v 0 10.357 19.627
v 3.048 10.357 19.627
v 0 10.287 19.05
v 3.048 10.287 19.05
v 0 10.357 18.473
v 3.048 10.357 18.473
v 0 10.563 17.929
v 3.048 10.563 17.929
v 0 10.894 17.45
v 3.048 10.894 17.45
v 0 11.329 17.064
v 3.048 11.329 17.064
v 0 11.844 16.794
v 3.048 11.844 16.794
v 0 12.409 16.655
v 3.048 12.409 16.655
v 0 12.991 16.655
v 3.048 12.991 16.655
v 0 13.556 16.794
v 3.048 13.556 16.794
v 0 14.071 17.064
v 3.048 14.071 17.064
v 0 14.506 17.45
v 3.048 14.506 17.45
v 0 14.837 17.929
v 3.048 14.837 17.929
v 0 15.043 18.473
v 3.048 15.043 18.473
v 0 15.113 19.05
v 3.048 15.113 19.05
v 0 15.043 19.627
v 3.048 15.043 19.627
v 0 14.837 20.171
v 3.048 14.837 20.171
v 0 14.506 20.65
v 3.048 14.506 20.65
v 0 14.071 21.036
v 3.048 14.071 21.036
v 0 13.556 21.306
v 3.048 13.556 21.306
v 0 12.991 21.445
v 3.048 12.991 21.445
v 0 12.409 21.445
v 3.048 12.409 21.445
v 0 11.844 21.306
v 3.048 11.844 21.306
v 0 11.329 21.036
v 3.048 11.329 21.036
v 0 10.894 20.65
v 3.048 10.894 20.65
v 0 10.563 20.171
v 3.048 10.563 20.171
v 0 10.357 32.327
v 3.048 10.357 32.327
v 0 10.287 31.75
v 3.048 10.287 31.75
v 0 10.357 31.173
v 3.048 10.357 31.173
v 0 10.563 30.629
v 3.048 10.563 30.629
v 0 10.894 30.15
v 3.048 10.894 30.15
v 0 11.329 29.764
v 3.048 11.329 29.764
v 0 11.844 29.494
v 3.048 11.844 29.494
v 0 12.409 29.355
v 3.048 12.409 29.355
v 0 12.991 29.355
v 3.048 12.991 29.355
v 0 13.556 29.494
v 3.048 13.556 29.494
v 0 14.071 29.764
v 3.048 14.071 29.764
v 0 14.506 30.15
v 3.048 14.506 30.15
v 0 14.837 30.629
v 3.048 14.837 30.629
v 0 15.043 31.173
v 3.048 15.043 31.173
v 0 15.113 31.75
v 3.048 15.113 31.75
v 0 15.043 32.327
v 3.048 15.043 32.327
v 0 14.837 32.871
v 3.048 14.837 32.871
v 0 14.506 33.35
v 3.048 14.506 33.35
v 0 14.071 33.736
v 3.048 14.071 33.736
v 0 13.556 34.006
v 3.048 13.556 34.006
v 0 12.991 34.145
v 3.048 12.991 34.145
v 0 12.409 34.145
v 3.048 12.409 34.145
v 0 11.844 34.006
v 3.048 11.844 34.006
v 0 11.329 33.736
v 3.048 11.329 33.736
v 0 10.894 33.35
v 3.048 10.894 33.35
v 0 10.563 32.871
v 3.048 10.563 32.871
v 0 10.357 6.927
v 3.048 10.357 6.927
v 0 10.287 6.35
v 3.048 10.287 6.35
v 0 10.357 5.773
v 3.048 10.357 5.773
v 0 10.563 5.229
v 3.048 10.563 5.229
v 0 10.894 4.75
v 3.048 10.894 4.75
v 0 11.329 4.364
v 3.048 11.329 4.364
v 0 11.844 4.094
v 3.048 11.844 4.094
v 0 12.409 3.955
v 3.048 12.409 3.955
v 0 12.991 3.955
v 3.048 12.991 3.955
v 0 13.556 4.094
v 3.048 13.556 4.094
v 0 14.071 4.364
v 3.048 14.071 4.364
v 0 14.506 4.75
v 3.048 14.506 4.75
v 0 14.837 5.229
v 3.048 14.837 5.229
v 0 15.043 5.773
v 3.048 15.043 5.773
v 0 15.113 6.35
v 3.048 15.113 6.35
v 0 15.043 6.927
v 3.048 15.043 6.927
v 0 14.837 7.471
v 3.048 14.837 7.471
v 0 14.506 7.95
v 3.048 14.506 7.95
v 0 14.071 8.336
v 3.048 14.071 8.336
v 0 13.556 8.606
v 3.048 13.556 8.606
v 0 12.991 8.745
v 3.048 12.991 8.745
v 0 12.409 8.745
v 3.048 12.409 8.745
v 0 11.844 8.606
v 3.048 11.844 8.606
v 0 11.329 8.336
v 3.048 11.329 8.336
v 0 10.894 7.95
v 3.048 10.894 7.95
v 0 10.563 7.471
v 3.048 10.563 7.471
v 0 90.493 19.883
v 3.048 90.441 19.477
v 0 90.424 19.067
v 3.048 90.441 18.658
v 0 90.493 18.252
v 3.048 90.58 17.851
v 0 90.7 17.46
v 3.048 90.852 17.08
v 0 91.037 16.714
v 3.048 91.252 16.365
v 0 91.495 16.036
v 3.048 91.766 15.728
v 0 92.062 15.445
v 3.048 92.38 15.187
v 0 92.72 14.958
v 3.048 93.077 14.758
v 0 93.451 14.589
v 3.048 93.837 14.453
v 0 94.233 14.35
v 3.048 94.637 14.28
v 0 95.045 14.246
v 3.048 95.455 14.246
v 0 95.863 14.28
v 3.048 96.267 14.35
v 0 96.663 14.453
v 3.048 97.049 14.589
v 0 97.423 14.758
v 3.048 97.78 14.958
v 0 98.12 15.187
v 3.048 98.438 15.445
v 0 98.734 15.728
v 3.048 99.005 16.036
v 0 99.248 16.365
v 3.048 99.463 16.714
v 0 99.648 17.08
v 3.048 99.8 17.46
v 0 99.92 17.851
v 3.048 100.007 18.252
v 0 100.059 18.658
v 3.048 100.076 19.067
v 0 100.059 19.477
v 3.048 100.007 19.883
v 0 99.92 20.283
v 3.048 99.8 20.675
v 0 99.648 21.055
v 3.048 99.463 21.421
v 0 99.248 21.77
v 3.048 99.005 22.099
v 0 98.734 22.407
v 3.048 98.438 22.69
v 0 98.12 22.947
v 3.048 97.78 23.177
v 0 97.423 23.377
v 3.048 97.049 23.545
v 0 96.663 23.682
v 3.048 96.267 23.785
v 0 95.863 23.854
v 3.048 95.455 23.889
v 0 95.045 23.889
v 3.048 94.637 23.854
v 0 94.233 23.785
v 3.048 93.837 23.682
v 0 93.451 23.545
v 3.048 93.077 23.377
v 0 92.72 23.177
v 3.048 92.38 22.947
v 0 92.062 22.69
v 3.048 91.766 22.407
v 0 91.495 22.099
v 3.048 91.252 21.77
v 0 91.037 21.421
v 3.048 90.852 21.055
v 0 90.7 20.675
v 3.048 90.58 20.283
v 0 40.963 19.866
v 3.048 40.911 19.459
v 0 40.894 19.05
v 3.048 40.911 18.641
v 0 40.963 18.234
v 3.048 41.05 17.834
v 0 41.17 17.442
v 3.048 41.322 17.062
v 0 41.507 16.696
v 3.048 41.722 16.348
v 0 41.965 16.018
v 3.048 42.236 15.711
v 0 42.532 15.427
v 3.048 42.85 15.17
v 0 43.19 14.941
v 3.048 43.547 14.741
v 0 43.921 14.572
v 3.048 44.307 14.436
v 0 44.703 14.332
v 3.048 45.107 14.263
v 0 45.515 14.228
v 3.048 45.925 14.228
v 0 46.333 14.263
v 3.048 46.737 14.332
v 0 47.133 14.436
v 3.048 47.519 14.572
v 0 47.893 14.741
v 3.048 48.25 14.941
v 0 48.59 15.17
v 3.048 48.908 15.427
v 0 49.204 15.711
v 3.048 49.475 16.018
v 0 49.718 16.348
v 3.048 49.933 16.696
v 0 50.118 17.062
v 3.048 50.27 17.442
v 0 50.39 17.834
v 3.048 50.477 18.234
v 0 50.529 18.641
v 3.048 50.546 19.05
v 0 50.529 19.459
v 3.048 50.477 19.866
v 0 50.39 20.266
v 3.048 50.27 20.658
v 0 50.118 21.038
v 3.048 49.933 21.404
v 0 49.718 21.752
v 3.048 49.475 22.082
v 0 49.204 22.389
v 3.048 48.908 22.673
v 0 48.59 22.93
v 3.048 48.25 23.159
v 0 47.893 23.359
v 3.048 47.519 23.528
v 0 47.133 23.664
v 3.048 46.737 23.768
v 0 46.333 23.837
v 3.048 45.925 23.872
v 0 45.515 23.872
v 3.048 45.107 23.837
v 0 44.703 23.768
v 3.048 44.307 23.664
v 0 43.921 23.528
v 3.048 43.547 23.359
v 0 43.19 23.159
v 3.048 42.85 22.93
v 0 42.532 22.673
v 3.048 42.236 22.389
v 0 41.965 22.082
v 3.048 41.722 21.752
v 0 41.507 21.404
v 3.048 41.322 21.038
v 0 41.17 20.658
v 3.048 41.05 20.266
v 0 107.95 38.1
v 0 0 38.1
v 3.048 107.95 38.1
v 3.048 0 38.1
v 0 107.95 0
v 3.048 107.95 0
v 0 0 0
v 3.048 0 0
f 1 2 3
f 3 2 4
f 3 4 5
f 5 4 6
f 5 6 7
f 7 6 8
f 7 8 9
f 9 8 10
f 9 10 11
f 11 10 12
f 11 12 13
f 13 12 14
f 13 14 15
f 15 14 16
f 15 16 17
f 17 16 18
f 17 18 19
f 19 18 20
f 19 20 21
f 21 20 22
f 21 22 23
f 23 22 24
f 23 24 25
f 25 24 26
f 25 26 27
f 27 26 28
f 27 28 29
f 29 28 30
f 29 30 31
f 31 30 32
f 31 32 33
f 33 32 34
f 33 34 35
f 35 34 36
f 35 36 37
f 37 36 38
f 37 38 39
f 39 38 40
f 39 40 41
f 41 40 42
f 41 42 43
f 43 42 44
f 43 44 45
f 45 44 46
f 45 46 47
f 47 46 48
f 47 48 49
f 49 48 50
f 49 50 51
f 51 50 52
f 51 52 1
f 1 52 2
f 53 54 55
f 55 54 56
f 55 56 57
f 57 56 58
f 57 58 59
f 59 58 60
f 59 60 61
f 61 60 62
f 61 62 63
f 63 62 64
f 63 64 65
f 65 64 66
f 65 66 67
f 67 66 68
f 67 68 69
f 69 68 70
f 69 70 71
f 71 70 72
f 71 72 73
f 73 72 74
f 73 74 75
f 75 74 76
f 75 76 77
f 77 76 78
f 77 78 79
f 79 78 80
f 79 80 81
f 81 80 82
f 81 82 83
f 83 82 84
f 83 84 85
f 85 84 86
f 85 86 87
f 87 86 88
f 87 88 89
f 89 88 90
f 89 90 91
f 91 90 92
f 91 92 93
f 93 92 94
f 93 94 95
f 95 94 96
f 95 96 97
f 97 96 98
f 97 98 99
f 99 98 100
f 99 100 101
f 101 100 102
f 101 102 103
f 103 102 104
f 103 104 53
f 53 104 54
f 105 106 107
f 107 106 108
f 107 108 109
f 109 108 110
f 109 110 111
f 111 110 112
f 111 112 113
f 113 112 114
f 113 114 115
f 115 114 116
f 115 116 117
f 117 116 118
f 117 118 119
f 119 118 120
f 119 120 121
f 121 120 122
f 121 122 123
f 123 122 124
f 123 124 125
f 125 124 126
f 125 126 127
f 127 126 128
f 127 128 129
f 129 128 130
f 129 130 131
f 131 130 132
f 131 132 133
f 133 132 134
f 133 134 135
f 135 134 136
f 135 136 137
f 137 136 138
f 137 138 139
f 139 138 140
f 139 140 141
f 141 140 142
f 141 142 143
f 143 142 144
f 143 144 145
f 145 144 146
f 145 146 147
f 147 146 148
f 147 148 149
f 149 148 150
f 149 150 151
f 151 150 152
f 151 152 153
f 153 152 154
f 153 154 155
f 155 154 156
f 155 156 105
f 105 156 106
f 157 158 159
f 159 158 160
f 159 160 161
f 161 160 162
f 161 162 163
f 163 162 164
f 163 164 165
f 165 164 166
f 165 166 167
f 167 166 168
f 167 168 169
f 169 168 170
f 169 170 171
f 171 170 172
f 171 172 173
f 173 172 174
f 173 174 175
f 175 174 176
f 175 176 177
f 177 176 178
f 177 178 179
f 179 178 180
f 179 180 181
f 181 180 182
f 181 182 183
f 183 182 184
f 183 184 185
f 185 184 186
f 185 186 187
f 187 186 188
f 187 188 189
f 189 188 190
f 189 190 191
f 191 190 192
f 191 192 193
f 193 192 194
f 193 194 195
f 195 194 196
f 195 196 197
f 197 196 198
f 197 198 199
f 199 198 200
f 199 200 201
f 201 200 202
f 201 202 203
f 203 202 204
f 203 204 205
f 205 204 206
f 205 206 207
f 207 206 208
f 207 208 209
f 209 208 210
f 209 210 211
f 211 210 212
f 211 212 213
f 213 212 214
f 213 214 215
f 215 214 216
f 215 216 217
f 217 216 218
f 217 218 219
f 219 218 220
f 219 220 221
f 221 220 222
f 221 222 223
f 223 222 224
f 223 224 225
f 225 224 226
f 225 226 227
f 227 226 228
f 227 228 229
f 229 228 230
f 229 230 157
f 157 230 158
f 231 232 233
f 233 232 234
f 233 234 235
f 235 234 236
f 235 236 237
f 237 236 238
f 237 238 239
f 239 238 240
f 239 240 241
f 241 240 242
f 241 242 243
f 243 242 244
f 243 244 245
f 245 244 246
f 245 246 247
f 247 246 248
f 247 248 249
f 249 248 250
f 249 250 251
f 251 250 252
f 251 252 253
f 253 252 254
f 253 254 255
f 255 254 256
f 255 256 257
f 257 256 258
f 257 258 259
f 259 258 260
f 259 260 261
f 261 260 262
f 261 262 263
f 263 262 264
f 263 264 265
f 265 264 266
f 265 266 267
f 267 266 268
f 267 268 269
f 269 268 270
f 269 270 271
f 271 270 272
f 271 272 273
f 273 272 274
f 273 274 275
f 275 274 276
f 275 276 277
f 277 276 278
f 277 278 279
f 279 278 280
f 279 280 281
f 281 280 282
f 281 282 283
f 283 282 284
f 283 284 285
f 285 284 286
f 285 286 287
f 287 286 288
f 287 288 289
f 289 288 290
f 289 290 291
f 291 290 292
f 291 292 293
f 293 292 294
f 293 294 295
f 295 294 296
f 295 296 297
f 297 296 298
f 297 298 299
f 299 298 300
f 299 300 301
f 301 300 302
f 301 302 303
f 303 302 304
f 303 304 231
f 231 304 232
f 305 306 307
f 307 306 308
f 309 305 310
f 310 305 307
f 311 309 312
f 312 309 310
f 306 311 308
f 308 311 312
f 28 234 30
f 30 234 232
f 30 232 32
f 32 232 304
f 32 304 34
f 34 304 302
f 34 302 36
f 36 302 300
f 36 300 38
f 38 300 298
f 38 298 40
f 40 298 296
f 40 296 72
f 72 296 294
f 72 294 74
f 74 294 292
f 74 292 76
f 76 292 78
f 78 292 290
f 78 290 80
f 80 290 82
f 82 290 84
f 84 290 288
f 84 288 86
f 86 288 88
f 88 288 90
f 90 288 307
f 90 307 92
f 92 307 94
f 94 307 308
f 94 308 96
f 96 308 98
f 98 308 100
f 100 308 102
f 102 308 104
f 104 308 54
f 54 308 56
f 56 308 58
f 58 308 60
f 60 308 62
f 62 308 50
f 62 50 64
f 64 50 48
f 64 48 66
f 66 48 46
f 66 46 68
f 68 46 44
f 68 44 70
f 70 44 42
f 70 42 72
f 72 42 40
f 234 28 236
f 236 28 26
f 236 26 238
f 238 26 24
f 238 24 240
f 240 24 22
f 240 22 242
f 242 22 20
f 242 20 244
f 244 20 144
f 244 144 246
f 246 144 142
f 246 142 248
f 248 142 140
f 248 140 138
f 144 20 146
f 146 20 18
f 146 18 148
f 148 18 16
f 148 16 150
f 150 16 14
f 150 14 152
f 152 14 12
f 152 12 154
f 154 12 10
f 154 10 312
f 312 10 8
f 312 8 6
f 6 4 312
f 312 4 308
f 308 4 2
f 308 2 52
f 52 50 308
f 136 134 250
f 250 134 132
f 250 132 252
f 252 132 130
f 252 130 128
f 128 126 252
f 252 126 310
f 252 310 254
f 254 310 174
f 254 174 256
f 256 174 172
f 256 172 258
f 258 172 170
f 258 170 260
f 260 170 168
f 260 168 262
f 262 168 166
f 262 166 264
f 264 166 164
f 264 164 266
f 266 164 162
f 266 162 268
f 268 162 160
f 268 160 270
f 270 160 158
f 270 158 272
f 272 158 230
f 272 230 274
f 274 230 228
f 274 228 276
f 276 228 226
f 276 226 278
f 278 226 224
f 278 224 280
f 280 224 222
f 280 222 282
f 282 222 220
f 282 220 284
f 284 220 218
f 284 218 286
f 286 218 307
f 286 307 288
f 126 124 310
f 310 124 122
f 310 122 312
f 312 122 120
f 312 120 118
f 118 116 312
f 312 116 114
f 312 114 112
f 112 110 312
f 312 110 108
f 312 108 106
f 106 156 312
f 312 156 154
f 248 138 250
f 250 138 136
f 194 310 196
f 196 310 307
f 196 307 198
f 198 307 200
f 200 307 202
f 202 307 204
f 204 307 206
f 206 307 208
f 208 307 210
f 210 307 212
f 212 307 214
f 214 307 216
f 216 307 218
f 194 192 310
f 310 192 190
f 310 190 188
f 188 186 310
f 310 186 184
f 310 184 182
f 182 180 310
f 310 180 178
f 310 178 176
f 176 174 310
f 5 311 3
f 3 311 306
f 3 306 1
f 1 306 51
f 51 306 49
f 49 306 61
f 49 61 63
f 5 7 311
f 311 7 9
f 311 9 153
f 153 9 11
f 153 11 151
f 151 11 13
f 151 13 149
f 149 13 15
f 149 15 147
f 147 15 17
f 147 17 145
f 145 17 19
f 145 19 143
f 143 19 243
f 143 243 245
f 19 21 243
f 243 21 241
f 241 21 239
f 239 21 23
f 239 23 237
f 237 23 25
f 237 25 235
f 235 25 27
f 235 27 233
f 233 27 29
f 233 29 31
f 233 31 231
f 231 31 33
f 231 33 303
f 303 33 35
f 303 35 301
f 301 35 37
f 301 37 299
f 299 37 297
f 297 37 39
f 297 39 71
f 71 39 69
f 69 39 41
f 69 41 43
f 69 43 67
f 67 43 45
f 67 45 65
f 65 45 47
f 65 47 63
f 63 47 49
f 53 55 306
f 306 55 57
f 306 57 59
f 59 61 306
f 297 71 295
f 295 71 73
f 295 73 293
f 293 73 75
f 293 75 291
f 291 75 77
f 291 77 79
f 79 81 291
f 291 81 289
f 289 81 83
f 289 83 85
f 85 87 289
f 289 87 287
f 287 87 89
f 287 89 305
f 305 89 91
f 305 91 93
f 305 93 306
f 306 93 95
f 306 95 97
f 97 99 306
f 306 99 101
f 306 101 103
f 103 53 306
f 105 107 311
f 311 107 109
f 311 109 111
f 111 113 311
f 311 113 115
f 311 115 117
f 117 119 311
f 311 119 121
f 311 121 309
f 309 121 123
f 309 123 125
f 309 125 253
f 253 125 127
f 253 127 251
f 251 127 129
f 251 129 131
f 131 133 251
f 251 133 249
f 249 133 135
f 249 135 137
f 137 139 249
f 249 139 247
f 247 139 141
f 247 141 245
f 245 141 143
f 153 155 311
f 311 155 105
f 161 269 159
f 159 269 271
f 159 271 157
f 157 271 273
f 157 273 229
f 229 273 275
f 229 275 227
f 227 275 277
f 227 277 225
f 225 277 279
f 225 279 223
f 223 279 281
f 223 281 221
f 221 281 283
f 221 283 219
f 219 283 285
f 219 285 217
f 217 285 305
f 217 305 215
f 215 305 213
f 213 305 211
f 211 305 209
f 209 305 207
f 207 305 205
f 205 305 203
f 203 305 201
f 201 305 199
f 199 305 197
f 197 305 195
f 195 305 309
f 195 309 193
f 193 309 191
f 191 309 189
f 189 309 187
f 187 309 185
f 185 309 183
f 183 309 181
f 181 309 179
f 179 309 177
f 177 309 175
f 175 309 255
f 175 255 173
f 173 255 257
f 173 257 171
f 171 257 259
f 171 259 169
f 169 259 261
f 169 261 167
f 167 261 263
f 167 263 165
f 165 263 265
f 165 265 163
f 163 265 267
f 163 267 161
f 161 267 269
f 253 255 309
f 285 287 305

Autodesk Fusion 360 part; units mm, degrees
sketch "Sketch1" plane through (0, 0, 0) normal (1, 0, 0) x (0, 1, 0)
  line L0 (0, 0) -> (107.95, 0)
  line L1 (107.95, 0) -> (107.95, 38.1)
  line L2 (107.95, 38.1) -> (0, 38.1)
  line L3 (0, 38.1) -> (0, 0)
  dimension "d1" = 38.1
  dimension "d2" = 107.95
extrude "Extrude1" add sketch "Sketch1" along normal blind 3.048
sketch "Sketch2" plane through (3.048, 0, 0) normal (1, 0, 0) x (0, 1, 0)
  line L0 (0, 38.1) -> (0, 0)
  line L1 (0, 0) -> (107.95, 0)
  line L2 (107.95, 0) -> (107.95, 38.1)
  line L3 (107.95, 38.1) -> (0, 38.1)
  line L4 (-12.7, 0) -> (-12.7, 19.05)
  line L5 (0, -12.7) -> (25.4, -12.7)
  line L6 (25.4, -25.4) -> (31.75, -25.4)
  line L7 (33.02, -38.1) -> (45.72, -38.1)
  line L8 (45.72, -50.8) -> (58.42, -50.8)
  line L9 (58.42, -50.8) -> (58.42, -38.1)
  line L10 (58.42, -38.1) -> (71.12, -38.1)
  line L11 (71.12, -38.1) -> (71.12, -50.8)
  line L12 (71.12, -50.8) -> (83.82, -50.8)
  line L13 (83.82, -50.8) -> (83.82, -38.1)
  line L14 (83.82, -38.1) -> (96.52, -38.1)
  line L15 (96.52, -38.1) -> (96.52, -50.8)
  line L16 (96.52, -50.8) -> (109.22, -50.8)
  line L17 (109.22, -50.8) -> (109.22, -38.1)
  line L18 (-12.7, 19.05) -> (121.92, 19.05)
  circle A0 centre (45.72, 19.05) radius 4.826
  dimension "d5" = 19.05
  dimension "d6" = 6.35
  dimension "d7" = 9.652
hole "Hole1" at (3.048, 45.72, 19.05) direction (-1, 0, 0) diameter 9.652 depth 40.64 tip angle 118
sketch "Sketch3" plane through (3.048, 0, 0) normal (1, 0, 0) x (0, 1, 0)
  circle A0 centre (45.72, 19.05) radius 4.826
  line L0 (0, 38.1) -> (0, 0)
  line L1 (0, 0) -> (107.95, 0)
  line L2 (107.95, 0) -> (107.95, 38.1)
  line L3 (107.95, 38.1) -> (0, 38.1)
  line L4 (111.76, 0) -> (111.76, 19.05)
  circle A1 centre (95.25, 19.0673) radius 4.826
  dimension "d16" = 9.652
hole "Hole2" at (3.048, 95.25, 19.0673) direction (-1, 0, 0) diameter 9.652 depth 40.64 tip angle 118
sketch "Sketch4" plane through (3.048, 0, 0) normal (1, 0, 0) x (0, 1, 0)
  circle A0 centre (95.25, 19.0673) radius 4.826
  circle A1 centre (45.72, 19.05) radius 4.826
  line L0 (0, 38.1) -> (0, 0)
  line L1 (0, 0) -> (107.95, 0)
  line L2 (107.95, 0) -> (107.95, 38.1)
  line L3 (107.95, 38.1) -> (0, 38.1)
  line L4 (12.7, -55.88) -> (0, -55.88)
  line L5 (0, -55.88) -> (0, 45.72)
  line L6 (12.7, 0) -> (-25.4, 0)
  line L7 (0, 0) -> (12.7, 0)
  line L8 (12.7, 0) -> (12.7, 6.35)
  line L9 (12.7, 6.35) -> (0, 6.35)
  line L10 (0, 6.35) -> (0, 0)
  dimension "d22" = 12.7
  dimension "d23" = 6.35
hole "Hole3" at (3.048, 12.7, 6.35) direction (-1, 0, 0) diameter 4.826 depth 40.64 tip angle 118
sketch "Sketch5" plane through (3.048, 0, 0) normal (1, 0, 0) x (0, 1, 0)
  circle A0 centre (12.7, 6.35) radius 2.413
  circle A1 centre (95.25, 19.0673) radius 4.826
  circle A2 centre (45.72, 19.05) radius 4.826
  line L0 (0, 38.1) -> (0, 0)
  line L1 (0, 0) -> (107.95, 0)
  line L2 (107.95, 0) -> (107.95, 38.1)
  line L3 (107.95, 38.1) -> (0, 38.1)
  line L4 (0, 38.1) -> (12.7, 38.1)
  line L5 (12.7, 38.1) -> (12.7, 31.75)
  line L6 (12.7, 31.75) -> (0, 31.75)
  line L7 (0, 31.75) -> (0, 38.1)
  dimension "d27" = 12.7
  dimension "d28" = 6.35
hole "Hole4" at (3.048, 12.7, 31.75) direction (-1, 0, 0) diameter 4.826 depth 40.64 tip angle 118
sketch "Sketch6" plane through (3.048, 0, 0) normal (1, 0, 0) x (0, 1, 0)
  circle A0 centre (12.7, 31.75) radius 2.413
  circle A1 centre (12.7, 6.35) radius 2.413
  circle A2 centre (95.25, 19.0673) radius 4.826
  circle A3 centre (45.72, 19.05) radius 4.826
  line L0 (0, 38.1) -> (0, 0)
  line L1 (0, 0) -> (107.95, 0)
  line L2 (107.95, 0) -> (107.95, 38.1)
  line L3 (107.95, 38.1) -> (0, 38.1)
  line L4 (0, 0) -> (12.7, 0)
  line L5 (12.7, 0) -> (12.7, 19.05)
  line L6 (12.7, 19.05) -> (0, 19.05)
  line L7 (0, 19.05) -> (0, 0)
  dimension "d32" = 12.7
  dimension "d33" = 19.05
hole "Hole5" at (3.048, 12.7, 19.05) direction (-1, 0, 0) diameter 4.826 depth 40.64 tip angle 118
